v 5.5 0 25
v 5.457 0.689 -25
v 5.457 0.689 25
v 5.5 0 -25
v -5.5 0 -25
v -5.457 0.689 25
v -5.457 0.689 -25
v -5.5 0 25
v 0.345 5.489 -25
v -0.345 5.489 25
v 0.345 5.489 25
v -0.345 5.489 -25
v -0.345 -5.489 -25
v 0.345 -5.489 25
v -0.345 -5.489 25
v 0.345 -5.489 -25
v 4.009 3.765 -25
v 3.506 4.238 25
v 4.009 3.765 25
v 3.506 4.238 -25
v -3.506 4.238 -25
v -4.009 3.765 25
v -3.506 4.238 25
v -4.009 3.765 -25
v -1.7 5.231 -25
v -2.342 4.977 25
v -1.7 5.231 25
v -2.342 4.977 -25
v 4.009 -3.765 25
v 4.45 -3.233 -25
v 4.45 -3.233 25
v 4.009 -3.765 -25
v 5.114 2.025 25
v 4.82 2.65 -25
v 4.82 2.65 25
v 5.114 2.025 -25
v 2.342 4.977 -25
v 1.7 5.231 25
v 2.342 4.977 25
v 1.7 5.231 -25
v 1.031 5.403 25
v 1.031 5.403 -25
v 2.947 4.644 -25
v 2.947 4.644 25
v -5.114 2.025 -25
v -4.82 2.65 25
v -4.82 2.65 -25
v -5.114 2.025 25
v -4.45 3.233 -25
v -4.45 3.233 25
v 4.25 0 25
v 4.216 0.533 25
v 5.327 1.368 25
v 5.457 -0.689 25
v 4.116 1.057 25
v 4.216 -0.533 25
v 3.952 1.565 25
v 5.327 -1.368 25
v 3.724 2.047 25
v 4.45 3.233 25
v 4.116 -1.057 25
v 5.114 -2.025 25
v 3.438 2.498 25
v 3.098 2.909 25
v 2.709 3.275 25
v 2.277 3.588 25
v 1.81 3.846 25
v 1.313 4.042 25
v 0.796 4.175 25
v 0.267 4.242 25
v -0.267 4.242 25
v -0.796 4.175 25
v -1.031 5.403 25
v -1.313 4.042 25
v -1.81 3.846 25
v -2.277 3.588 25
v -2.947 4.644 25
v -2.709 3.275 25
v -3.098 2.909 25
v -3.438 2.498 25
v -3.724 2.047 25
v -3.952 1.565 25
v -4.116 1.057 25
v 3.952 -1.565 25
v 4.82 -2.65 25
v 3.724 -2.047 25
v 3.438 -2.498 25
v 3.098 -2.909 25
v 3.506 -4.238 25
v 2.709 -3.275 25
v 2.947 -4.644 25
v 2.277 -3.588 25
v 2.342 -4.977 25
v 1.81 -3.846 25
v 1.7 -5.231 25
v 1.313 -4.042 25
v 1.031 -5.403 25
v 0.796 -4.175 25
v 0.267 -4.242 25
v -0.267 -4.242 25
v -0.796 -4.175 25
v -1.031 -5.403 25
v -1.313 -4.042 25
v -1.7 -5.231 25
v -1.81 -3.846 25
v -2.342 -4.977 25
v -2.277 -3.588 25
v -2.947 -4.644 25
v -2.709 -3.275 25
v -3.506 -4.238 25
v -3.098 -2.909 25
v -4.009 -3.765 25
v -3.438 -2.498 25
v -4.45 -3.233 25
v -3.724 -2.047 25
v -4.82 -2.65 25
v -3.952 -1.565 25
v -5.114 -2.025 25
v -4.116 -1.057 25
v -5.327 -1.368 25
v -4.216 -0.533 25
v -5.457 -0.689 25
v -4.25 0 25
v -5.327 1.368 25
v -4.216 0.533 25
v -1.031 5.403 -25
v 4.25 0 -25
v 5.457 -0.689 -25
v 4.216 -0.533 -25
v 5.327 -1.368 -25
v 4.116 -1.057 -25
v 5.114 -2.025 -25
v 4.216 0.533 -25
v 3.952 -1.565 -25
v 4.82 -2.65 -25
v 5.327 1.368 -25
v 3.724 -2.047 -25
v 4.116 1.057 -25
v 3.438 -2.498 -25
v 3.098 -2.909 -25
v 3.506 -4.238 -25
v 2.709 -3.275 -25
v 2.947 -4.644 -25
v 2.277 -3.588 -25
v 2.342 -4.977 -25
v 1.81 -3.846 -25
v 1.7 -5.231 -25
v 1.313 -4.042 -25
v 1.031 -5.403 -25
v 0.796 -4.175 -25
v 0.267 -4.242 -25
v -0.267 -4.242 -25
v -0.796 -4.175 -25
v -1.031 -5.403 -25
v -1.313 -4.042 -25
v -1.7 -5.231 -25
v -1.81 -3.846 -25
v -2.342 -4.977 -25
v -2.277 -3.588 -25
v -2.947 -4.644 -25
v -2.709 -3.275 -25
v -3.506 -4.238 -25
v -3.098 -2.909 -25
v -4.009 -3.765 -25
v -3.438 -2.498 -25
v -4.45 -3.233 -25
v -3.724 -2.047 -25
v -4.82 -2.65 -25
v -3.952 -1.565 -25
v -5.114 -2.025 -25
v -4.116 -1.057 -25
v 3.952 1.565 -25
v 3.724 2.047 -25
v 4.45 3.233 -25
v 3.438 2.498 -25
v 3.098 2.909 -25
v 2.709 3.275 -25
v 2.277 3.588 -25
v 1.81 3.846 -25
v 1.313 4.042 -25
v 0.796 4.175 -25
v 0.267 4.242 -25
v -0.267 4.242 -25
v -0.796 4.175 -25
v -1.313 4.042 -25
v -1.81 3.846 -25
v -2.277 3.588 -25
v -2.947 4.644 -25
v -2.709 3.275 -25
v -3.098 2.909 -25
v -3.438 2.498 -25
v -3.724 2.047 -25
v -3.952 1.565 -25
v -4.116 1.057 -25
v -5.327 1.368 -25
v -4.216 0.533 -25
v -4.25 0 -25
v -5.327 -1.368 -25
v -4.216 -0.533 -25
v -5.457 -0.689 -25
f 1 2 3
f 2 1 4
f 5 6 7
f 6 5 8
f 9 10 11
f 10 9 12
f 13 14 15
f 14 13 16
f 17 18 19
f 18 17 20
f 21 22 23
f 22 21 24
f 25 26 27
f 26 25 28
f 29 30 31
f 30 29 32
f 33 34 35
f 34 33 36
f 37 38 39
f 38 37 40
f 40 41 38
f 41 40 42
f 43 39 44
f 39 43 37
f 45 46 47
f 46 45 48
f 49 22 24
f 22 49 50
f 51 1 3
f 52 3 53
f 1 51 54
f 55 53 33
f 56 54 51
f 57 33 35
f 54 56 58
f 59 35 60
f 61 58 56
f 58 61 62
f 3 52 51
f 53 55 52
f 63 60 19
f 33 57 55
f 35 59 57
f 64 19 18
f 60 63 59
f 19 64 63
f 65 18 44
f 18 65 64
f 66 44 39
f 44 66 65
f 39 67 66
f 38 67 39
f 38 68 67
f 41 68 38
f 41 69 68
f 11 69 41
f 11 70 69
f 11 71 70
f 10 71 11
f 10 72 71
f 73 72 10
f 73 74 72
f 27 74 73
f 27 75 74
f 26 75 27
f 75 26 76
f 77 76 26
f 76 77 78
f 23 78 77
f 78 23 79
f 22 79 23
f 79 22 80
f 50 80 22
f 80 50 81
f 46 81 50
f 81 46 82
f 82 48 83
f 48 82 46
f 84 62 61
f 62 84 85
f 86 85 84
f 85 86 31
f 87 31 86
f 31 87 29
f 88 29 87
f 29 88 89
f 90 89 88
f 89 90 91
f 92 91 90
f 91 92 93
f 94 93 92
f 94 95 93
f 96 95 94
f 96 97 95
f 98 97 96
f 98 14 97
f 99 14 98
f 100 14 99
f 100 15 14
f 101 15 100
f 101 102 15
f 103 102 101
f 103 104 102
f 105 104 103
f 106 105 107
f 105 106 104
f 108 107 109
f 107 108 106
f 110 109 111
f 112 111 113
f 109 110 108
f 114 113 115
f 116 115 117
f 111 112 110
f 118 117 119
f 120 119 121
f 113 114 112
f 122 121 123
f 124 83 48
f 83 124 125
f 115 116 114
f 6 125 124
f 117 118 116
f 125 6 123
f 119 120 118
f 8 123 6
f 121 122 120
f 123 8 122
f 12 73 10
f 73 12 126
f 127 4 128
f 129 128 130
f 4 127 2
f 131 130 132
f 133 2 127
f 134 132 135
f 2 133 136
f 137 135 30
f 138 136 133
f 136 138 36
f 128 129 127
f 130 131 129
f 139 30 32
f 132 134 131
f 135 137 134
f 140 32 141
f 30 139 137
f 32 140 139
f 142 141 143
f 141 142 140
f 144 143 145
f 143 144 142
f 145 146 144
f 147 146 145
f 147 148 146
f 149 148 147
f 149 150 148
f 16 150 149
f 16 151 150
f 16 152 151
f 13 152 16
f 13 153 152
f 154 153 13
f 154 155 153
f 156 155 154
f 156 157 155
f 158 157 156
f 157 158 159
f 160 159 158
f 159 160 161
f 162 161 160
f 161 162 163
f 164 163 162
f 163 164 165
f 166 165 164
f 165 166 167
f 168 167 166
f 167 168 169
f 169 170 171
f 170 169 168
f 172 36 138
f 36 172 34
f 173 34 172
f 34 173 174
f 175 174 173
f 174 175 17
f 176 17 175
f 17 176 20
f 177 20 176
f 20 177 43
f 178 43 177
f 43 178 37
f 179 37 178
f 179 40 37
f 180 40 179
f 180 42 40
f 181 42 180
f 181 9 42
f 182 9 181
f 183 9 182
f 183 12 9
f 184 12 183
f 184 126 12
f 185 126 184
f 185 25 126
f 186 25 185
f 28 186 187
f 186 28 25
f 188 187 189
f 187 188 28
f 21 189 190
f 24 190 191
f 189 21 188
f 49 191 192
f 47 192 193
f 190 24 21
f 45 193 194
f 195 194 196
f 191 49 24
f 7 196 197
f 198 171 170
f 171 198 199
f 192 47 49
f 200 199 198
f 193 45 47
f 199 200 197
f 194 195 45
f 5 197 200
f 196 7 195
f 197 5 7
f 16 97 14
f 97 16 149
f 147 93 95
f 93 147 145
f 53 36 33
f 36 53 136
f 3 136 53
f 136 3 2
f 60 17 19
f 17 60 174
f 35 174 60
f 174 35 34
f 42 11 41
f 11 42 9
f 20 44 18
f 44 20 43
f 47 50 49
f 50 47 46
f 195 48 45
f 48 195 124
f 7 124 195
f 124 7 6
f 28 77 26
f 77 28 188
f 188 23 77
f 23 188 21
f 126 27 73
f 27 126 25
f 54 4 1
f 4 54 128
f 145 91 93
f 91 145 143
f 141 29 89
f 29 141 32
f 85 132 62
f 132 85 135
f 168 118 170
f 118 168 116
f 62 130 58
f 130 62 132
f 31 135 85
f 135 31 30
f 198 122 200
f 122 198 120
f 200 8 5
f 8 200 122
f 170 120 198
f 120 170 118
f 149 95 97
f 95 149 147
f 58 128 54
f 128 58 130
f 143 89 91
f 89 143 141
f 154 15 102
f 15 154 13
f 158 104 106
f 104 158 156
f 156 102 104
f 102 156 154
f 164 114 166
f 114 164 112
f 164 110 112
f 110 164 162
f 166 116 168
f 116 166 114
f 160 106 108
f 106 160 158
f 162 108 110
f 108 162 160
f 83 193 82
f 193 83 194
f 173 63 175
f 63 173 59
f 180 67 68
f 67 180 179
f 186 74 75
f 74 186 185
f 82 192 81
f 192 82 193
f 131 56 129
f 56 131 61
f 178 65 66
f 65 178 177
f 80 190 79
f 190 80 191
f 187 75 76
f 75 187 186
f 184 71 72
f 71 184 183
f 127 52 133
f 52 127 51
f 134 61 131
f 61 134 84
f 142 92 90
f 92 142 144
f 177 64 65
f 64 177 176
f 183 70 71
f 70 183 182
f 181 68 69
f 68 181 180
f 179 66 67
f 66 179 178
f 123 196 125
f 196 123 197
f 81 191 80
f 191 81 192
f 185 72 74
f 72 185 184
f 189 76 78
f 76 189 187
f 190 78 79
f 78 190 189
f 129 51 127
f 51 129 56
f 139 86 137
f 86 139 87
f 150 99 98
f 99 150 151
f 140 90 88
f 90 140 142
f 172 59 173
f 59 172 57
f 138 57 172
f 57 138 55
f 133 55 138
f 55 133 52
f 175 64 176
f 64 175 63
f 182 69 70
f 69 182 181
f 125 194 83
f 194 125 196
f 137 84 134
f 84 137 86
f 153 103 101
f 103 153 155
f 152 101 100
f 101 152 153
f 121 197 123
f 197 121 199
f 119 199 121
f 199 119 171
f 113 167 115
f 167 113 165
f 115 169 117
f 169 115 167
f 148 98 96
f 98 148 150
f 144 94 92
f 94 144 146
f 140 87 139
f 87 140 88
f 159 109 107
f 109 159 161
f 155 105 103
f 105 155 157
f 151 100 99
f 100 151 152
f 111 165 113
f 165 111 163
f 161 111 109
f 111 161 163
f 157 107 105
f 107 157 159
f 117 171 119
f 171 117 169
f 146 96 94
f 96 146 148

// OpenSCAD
$fn = 50;


difference() {
	union() {
		translate(v = [0, 0, -25.0000000000]) {
			cylinder(h = 50, r = 5.5000000000);
		}
	}
	union() {
		translate(v = [0, 0, -100.0000000000]) {
			cylinder(h = 200, r = 4.2500000000);
		}
	}
}
